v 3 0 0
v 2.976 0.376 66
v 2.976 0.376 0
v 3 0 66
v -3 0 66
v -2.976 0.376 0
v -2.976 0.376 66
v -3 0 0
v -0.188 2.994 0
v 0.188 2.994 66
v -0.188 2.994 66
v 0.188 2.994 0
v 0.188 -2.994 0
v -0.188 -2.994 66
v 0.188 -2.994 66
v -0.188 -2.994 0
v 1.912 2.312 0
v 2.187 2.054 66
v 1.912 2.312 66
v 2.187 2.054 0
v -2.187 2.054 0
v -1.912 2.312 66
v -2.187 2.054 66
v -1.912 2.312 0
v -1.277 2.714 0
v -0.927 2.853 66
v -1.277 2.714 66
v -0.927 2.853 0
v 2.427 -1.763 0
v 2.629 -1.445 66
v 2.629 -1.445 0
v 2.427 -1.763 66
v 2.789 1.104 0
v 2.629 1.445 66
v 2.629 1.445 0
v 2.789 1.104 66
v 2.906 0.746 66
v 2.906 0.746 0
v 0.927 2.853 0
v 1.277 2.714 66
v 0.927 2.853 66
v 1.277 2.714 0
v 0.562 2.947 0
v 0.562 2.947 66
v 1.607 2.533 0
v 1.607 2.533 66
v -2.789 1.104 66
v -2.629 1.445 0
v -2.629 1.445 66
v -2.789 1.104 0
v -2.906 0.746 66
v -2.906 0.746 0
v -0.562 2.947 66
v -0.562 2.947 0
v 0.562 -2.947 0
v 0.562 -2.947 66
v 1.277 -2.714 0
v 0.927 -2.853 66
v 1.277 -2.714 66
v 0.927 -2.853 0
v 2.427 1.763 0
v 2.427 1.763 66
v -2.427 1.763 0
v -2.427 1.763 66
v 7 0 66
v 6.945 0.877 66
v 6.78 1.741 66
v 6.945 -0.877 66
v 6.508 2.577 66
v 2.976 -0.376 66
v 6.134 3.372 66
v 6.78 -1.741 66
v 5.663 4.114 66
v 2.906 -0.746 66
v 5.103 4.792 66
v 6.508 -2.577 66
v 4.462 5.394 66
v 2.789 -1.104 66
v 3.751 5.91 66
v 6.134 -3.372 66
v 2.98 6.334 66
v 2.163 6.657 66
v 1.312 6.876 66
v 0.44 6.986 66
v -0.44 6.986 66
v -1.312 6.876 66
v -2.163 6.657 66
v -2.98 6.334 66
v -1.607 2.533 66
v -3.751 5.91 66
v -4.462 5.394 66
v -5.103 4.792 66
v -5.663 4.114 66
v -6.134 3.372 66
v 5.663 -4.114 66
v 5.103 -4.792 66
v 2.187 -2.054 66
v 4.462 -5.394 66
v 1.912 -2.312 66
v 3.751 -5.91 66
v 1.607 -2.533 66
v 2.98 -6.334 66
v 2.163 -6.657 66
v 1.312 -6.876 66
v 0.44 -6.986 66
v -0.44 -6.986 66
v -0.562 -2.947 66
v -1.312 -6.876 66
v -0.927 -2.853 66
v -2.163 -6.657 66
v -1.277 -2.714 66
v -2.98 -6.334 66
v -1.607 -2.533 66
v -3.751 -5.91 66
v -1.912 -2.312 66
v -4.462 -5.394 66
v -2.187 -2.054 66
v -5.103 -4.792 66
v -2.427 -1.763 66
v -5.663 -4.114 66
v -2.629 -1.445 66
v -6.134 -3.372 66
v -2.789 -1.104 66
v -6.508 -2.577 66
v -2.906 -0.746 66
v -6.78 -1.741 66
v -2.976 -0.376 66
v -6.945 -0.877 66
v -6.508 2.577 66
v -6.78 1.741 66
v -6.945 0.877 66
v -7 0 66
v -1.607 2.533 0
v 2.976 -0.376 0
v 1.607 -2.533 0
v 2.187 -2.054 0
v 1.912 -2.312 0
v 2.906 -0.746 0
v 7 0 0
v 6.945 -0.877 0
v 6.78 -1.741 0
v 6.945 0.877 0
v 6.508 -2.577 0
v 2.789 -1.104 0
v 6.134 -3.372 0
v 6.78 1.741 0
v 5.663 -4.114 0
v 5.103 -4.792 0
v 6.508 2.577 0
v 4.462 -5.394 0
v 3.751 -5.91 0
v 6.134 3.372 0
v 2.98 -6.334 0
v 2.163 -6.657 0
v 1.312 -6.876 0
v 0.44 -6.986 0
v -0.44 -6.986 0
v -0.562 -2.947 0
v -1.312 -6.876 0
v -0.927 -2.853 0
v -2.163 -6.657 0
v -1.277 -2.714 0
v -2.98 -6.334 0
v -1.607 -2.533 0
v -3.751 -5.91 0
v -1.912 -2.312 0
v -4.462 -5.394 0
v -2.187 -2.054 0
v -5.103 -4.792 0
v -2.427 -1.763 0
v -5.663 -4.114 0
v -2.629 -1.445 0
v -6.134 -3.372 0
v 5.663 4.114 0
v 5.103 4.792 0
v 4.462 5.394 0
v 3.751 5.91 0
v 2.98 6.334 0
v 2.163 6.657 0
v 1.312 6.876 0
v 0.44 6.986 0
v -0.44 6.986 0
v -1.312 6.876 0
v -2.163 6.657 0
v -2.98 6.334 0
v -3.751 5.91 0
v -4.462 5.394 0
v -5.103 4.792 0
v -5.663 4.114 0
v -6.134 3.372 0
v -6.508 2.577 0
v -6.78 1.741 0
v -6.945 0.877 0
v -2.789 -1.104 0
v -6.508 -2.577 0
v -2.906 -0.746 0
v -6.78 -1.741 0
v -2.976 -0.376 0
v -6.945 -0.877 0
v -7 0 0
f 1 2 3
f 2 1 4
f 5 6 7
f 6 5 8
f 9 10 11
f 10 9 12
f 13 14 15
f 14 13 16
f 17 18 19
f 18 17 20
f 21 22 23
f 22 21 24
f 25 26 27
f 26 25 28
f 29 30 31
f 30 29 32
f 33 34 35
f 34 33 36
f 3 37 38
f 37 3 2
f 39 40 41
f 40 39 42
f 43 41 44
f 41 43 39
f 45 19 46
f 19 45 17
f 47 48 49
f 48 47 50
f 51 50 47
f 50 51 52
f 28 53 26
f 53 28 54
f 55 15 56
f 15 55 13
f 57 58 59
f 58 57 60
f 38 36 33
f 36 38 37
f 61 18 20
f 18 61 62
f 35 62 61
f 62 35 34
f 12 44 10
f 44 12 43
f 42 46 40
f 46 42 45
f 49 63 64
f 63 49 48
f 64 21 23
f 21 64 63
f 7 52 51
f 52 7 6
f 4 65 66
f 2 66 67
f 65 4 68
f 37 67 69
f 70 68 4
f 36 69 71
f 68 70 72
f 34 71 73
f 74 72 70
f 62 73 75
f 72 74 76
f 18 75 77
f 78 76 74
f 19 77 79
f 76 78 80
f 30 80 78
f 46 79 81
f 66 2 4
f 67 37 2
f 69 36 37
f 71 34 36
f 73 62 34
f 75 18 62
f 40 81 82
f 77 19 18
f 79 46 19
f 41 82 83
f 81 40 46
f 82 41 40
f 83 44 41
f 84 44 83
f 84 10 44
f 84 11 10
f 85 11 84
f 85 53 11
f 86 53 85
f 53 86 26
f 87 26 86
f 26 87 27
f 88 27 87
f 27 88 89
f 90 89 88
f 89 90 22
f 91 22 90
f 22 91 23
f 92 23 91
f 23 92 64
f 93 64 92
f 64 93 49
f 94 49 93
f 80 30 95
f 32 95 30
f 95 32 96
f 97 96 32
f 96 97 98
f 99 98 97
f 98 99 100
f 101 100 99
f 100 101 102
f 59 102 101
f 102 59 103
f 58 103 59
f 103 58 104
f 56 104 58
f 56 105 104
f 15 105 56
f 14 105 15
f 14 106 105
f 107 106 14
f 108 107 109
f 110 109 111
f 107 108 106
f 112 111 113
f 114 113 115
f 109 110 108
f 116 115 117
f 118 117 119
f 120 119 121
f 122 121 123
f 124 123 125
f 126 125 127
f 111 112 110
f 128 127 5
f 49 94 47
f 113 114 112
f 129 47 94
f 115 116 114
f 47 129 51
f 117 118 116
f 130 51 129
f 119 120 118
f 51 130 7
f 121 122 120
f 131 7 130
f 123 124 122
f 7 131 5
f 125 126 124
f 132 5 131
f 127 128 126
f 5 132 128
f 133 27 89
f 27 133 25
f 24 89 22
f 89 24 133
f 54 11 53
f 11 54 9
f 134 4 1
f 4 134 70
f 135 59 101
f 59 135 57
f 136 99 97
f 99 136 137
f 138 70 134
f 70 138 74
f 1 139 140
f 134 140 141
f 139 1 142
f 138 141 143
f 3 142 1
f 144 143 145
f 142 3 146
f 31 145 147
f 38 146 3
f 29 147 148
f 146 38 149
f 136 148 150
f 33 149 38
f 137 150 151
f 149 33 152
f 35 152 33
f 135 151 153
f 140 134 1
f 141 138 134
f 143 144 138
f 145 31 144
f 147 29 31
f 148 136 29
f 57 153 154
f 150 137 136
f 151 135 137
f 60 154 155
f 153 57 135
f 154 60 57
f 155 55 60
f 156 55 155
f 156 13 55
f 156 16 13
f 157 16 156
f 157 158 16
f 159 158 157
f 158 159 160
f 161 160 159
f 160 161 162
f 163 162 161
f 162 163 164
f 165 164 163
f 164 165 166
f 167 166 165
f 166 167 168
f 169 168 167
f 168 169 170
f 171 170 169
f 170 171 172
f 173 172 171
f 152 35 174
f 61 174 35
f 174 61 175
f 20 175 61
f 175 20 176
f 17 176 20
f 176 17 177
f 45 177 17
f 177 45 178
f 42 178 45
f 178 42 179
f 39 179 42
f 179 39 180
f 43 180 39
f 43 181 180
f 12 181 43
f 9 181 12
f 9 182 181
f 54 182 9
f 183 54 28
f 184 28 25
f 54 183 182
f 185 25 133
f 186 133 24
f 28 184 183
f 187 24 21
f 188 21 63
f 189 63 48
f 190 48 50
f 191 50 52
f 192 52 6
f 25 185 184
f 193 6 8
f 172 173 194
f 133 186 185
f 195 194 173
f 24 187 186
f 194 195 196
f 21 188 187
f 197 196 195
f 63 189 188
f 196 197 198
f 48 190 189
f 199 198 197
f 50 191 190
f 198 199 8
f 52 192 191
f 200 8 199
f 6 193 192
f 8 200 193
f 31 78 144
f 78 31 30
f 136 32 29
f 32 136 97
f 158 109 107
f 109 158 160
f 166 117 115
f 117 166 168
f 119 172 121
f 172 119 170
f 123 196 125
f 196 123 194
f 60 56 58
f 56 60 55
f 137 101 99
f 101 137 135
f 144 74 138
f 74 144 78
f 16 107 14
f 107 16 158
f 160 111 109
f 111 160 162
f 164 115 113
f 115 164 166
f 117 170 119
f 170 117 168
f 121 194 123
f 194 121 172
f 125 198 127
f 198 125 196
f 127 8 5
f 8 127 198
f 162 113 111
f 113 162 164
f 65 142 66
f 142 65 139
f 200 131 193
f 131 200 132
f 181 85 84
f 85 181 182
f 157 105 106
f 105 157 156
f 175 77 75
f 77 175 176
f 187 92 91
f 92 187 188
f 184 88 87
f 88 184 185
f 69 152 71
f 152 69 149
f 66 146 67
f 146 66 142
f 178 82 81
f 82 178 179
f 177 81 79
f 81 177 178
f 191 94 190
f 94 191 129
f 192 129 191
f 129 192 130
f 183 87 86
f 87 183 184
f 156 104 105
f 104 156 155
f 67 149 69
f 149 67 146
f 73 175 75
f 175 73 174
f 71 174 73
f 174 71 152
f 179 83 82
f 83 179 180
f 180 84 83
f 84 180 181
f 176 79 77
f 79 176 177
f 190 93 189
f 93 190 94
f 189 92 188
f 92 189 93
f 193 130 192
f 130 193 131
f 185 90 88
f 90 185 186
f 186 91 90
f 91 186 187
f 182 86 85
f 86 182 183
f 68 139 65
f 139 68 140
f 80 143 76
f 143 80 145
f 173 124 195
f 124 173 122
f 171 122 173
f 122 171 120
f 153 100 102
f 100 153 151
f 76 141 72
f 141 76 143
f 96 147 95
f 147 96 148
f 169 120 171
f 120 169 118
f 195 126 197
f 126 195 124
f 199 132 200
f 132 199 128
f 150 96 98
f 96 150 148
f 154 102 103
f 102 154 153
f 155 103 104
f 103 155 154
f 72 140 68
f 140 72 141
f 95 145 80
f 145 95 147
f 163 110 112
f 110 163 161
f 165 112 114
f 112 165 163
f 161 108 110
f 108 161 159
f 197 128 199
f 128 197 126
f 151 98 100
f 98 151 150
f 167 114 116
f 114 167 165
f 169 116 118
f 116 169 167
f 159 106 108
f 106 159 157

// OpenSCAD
$fn = 50;


difference() {
	union() {
		cylinder(h = 66, r = 7.0000000000);
	}
	union() {
		translate(v = [0.0000000000, 0.0000000000, -100.0000000000]) {
			cylinder(h = 200, r = 3.0000000000);
		}
		translate(v = [0.0000000000, 0.0000000000, -100.0000000000]) {
			cylinder(h = 200, r = 3.0000000000);
		}
		translate(v = [0.0000000000, 0.0000000000, -100.0000000000]) {
			cylinder(h = 200, r = 3.0000000000);
		}
		translate(v = [0.0000000000, 0.0000000000, -100.0000000000]) {
			cylinder(h = 200, r = 3.0000000000);
		}
	}
}
